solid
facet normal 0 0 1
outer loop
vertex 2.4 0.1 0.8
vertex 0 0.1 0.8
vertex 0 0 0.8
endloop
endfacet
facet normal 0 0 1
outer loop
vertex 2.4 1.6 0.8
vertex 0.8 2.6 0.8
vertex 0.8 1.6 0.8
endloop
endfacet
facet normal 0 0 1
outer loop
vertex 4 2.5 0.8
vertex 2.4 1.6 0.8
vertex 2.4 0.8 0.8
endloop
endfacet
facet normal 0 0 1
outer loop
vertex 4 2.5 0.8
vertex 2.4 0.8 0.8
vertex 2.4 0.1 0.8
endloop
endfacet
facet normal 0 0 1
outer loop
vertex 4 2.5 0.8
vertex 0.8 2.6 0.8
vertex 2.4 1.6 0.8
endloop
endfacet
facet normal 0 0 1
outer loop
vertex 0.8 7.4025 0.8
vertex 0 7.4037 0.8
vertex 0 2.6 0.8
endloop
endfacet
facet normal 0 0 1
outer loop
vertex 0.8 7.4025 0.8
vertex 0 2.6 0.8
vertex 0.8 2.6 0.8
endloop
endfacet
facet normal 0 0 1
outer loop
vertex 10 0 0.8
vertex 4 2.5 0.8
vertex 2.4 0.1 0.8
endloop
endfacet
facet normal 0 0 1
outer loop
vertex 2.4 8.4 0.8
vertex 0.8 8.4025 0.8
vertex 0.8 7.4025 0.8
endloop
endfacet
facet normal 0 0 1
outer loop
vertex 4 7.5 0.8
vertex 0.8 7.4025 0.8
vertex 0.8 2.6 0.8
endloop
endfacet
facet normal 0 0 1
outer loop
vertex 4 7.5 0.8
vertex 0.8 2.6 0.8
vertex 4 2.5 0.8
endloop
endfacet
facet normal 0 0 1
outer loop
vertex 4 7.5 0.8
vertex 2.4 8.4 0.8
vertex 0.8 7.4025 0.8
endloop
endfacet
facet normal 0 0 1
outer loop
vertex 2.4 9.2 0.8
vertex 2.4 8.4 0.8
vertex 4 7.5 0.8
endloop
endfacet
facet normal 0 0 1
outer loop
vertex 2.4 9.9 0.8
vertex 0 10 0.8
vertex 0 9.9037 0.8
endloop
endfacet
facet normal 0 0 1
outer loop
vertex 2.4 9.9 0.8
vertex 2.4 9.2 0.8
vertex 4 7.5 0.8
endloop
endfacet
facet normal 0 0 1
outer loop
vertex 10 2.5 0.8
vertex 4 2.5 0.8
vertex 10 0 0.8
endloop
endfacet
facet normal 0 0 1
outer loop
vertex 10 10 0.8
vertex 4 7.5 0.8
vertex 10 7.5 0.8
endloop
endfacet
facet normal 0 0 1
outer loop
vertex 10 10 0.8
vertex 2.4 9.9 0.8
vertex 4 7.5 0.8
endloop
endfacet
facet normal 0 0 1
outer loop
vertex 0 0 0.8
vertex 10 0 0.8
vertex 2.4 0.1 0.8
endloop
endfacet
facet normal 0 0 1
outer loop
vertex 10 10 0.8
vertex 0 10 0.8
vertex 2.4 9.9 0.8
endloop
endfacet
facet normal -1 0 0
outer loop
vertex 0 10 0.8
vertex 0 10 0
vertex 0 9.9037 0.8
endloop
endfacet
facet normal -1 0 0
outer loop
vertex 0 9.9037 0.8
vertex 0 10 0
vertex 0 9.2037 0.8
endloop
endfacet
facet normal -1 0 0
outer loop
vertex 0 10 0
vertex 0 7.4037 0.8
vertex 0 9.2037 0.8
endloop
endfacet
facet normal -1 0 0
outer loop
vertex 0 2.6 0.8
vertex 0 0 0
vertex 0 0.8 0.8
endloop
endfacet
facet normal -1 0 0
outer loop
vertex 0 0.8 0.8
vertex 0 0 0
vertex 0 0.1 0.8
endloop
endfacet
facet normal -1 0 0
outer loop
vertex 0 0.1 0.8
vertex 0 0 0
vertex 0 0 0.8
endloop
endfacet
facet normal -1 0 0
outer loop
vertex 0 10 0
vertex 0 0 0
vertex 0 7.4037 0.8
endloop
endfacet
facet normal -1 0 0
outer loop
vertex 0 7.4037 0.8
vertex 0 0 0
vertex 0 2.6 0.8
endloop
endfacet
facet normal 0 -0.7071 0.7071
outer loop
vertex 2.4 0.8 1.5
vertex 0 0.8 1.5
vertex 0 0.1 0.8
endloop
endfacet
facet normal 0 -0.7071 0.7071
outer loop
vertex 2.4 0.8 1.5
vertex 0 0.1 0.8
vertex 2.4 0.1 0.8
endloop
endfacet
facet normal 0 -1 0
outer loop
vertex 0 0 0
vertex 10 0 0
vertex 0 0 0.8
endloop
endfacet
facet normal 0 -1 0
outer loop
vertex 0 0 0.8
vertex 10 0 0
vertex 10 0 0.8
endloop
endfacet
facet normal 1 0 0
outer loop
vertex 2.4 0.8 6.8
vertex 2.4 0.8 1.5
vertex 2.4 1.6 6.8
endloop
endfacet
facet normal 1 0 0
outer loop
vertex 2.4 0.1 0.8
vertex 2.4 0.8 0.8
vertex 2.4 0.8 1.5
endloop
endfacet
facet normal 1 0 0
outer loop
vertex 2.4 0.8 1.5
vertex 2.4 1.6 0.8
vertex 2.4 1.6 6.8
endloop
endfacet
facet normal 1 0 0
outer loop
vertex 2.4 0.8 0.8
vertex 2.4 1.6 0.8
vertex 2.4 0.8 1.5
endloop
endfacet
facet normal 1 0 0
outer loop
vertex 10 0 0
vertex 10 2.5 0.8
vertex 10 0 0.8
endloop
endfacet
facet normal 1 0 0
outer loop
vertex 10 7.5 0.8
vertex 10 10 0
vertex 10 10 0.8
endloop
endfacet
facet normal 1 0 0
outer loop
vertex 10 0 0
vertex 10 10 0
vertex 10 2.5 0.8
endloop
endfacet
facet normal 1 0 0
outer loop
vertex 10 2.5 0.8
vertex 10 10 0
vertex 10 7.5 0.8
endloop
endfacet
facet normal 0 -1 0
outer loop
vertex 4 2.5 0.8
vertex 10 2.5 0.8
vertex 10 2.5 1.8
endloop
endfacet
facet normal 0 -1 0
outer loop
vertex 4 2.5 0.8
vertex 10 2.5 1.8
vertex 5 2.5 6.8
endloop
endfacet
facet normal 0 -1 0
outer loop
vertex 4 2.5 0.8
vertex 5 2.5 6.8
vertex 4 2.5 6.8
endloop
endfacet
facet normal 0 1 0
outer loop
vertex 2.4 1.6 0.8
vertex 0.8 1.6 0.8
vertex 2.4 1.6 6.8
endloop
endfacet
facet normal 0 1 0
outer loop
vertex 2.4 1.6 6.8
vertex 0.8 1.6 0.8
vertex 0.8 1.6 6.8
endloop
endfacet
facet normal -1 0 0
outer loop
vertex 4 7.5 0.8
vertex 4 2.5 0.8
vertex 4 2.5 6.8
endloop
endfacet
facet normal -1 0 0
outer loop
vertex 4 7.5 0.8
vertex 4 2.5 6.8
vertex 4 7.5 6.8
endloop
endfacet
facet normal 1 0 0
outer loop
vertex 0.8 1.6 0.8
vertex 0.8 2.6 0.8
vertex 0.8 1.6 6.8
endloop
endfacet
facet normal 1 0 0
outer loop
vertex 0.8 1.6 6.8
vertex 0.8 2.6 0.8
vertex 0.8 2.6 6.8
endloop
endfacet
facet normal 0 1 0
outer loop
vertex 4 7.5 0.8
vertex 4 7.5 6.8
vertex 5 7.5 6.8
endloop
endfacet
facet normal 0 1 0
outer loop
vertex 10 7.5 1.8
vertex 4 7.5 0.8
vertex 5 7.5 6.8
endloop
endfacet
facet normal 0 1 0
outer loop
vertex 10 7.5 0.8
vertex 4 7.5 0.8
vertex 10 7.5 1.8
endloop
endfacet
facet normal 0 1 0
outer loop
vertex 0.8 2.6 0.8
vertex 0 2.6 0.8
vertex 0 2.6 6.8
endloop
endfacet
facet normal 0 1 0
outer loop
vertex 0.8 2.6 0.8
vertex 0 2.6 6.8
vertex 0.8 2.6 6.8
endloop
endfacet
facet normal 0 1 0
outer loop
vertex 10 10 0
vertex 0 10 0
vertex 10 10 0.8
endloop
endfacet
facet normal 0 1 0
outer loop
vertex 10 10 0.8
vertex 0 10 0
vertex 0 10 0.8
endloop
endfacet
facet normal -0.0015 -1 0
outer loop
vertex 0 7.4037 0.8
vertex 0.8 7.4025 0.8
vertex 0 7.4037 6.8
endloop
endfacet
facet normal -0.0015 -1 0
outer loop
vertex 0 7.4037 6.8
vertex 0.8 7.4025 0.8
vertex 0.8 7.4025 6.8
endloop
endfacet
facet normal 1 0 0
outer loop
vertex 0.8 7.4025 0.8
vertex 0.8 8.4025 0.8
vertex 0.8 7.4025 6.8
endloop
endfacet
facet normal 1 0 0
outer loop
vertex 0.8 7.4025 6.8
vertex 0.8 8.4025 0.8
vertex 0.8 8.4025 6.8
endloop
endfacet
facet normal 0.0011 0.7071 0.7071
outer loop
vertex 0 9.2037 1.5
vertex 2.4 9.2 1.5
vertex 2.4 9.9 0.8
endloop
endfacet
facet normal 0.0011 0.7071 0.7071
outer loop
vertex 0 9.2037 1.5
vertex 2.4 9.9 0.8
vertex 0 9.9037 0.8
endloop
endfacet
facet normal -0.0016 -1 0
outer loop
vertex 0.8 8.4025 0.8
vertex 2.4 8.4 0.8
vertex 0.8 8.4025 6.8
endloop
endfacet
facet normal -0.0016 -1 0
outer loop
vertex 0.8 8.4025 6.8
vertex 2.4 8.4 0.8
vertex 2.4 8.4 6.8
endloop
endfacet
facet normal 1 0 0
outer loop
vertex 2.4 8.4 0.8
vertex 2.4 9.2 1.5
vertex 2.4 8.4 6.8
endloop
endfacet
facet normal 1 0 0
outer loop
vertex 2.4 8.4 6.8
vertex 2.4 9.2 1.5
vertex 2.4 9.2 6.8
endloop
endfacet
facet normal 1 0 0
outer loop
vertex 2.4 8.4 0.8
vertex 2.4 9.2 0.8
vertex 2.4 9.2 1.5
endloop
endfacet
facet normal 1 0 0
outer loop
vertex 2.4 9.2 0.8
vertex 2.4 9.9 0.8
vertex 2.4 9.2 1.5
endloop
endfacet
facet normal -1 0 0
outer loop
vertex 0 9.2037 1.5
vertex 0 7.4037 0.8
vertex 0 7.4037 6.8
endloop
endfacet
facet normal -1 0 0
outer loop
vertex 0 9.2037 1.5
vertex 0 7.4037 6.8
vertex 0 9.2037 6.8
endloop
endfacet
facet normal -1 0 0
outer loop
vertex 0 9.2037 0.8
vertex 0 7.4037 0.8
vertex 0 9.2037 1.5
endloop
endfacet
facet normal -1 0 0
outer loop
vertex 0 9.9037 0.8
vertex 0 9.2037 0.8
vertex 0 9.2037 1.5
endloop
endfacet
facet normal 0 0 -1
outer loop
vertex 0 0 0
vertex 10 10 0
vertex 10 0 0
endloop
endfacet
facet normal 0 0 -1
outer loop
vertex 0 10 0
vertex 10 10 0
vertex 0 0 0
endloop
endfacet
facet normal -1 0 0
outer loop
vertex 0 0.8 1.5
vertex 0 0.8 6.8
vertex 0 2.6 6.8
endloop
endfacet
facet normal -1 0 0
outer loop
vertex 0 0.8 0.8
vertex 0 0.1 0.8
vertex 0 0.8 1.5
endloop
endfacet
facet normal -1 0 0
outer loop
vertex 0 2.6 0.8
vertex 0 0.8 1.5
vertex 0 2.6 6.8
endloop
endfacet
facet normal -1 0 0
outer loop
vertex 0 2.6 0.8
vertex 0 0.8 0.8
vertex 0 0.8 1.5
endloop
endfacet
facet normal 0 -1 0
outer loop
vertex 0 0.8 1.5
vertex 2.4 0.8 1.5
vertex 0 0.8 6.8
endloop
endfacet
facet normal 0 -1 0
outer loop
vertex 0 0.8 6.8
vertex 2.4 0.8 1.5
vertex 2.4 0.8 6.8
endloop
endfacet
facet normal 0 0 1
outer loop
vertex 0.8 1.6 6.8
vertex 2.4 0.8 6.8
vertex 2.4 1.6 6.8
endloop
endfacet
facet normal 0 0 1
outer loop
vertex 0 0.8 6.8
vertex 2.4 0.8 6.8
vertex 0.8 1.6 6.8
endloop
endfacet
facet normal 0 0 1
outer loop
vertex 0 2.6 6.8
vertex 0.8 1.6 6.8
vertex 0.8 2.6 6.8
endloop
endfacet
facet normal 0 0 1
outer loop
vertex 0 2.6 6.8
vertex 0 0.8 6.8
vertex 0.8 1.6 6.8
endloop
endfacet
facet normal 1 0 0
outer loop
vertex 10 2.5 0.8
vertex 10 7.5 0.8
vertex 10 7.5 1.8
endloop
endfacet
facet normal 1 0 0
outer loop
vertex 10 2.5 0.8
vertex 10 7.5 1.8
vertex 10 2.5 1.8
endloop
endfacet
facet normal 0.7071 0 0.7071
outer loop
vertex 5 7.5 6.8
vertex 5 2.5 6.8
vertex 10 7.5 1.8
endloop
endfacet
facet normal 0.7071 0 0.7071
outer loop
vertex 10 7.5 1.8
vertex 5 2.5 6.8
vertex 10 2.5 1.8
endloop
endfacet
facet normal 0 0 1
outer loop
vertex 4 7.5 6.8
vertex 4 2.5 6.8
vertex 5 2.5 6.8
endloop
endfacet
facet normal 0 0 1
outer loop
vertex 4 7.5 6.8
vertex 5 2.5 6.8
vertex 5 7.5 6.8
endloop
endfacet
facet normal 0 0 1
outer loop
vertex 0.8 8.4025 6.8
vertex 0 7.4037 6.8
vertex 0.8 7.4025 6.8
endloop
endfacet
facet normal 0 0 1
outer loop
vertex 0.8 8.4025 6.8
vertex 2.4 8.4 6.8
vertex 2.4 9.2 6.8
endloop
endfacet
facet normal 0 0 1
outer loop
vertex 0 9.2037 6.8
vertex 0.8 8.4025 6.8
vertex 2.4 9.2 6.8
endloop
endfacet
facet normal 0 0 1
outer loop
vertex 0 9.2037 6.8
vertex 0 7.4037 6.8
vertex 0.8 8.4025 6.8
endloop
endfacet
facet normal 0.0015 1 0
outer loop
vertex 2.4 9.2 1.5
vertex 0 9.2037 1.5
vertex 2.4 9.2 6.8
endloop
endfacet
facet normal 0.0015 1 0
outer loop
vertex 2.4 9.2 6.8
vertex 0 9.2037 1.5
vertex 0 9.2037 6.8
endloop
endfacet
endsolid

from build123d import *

# Parameters (mm, degrees)
SKETCH_W        = 10
SKETCH_H        = 10
PAD_DEPTH       = 0.8
SKETCH001_W     = 6
SKETCH001_H     = 5
PAD001_DEPTH    = 6
CHAMFER_SIZE    = 5
CHAMFER001_SIZE = 0.7


with BuildPart() as part:
    # Sketch → Pad (new body)
    with BuildSketch(Plane.XY):
        with Locations((5, 5)):
            Rectangle(SKETCH_W, SKETCH_H)
    extrude(amount=PAD_DEPTH)

    # Sketch001 (on Face6 of Pad) → Pad001 (join)
    with BuildSketch(Plane.XY.offset(0.8)):
        with Locations((7, 5)):
            Rectangle(SKETCH001_W, SKETCH001_H)
        Polygon((0, 0.8), (0, 2.6), (0.8, 2.6), (0.8, 1.6), (2.4, 1.6), (2.4, 0.8), align=None)
        Polygon((0, 7.403696), (0, 9.203696), (2.399997, 9.2), (2.399997, 8.4), (0.8, 8.402464), (0.8, 7.402464), align=None)
    extrude(amount=PAD001_DEPTH)

    # Chamfer
    chamfer_edges = [part.edges().sort_by_distance(p)[0] for p in [
        (10, 5, 6.8),
    ]]
    chamfer(chamfer_edges, length=CHAMFER_SIZE)

    # Chamfer001
    chamfer001_edges = [part.edges().sort_by_distance(p)[0] for p in [
        (1.2, 0.8, 0.8),
        (1.199999, 9.201848, 0.8),
    ]]
    chamfer(chamfer001_edges, length=CHAMFER001_SIZE)


solid = part.part
